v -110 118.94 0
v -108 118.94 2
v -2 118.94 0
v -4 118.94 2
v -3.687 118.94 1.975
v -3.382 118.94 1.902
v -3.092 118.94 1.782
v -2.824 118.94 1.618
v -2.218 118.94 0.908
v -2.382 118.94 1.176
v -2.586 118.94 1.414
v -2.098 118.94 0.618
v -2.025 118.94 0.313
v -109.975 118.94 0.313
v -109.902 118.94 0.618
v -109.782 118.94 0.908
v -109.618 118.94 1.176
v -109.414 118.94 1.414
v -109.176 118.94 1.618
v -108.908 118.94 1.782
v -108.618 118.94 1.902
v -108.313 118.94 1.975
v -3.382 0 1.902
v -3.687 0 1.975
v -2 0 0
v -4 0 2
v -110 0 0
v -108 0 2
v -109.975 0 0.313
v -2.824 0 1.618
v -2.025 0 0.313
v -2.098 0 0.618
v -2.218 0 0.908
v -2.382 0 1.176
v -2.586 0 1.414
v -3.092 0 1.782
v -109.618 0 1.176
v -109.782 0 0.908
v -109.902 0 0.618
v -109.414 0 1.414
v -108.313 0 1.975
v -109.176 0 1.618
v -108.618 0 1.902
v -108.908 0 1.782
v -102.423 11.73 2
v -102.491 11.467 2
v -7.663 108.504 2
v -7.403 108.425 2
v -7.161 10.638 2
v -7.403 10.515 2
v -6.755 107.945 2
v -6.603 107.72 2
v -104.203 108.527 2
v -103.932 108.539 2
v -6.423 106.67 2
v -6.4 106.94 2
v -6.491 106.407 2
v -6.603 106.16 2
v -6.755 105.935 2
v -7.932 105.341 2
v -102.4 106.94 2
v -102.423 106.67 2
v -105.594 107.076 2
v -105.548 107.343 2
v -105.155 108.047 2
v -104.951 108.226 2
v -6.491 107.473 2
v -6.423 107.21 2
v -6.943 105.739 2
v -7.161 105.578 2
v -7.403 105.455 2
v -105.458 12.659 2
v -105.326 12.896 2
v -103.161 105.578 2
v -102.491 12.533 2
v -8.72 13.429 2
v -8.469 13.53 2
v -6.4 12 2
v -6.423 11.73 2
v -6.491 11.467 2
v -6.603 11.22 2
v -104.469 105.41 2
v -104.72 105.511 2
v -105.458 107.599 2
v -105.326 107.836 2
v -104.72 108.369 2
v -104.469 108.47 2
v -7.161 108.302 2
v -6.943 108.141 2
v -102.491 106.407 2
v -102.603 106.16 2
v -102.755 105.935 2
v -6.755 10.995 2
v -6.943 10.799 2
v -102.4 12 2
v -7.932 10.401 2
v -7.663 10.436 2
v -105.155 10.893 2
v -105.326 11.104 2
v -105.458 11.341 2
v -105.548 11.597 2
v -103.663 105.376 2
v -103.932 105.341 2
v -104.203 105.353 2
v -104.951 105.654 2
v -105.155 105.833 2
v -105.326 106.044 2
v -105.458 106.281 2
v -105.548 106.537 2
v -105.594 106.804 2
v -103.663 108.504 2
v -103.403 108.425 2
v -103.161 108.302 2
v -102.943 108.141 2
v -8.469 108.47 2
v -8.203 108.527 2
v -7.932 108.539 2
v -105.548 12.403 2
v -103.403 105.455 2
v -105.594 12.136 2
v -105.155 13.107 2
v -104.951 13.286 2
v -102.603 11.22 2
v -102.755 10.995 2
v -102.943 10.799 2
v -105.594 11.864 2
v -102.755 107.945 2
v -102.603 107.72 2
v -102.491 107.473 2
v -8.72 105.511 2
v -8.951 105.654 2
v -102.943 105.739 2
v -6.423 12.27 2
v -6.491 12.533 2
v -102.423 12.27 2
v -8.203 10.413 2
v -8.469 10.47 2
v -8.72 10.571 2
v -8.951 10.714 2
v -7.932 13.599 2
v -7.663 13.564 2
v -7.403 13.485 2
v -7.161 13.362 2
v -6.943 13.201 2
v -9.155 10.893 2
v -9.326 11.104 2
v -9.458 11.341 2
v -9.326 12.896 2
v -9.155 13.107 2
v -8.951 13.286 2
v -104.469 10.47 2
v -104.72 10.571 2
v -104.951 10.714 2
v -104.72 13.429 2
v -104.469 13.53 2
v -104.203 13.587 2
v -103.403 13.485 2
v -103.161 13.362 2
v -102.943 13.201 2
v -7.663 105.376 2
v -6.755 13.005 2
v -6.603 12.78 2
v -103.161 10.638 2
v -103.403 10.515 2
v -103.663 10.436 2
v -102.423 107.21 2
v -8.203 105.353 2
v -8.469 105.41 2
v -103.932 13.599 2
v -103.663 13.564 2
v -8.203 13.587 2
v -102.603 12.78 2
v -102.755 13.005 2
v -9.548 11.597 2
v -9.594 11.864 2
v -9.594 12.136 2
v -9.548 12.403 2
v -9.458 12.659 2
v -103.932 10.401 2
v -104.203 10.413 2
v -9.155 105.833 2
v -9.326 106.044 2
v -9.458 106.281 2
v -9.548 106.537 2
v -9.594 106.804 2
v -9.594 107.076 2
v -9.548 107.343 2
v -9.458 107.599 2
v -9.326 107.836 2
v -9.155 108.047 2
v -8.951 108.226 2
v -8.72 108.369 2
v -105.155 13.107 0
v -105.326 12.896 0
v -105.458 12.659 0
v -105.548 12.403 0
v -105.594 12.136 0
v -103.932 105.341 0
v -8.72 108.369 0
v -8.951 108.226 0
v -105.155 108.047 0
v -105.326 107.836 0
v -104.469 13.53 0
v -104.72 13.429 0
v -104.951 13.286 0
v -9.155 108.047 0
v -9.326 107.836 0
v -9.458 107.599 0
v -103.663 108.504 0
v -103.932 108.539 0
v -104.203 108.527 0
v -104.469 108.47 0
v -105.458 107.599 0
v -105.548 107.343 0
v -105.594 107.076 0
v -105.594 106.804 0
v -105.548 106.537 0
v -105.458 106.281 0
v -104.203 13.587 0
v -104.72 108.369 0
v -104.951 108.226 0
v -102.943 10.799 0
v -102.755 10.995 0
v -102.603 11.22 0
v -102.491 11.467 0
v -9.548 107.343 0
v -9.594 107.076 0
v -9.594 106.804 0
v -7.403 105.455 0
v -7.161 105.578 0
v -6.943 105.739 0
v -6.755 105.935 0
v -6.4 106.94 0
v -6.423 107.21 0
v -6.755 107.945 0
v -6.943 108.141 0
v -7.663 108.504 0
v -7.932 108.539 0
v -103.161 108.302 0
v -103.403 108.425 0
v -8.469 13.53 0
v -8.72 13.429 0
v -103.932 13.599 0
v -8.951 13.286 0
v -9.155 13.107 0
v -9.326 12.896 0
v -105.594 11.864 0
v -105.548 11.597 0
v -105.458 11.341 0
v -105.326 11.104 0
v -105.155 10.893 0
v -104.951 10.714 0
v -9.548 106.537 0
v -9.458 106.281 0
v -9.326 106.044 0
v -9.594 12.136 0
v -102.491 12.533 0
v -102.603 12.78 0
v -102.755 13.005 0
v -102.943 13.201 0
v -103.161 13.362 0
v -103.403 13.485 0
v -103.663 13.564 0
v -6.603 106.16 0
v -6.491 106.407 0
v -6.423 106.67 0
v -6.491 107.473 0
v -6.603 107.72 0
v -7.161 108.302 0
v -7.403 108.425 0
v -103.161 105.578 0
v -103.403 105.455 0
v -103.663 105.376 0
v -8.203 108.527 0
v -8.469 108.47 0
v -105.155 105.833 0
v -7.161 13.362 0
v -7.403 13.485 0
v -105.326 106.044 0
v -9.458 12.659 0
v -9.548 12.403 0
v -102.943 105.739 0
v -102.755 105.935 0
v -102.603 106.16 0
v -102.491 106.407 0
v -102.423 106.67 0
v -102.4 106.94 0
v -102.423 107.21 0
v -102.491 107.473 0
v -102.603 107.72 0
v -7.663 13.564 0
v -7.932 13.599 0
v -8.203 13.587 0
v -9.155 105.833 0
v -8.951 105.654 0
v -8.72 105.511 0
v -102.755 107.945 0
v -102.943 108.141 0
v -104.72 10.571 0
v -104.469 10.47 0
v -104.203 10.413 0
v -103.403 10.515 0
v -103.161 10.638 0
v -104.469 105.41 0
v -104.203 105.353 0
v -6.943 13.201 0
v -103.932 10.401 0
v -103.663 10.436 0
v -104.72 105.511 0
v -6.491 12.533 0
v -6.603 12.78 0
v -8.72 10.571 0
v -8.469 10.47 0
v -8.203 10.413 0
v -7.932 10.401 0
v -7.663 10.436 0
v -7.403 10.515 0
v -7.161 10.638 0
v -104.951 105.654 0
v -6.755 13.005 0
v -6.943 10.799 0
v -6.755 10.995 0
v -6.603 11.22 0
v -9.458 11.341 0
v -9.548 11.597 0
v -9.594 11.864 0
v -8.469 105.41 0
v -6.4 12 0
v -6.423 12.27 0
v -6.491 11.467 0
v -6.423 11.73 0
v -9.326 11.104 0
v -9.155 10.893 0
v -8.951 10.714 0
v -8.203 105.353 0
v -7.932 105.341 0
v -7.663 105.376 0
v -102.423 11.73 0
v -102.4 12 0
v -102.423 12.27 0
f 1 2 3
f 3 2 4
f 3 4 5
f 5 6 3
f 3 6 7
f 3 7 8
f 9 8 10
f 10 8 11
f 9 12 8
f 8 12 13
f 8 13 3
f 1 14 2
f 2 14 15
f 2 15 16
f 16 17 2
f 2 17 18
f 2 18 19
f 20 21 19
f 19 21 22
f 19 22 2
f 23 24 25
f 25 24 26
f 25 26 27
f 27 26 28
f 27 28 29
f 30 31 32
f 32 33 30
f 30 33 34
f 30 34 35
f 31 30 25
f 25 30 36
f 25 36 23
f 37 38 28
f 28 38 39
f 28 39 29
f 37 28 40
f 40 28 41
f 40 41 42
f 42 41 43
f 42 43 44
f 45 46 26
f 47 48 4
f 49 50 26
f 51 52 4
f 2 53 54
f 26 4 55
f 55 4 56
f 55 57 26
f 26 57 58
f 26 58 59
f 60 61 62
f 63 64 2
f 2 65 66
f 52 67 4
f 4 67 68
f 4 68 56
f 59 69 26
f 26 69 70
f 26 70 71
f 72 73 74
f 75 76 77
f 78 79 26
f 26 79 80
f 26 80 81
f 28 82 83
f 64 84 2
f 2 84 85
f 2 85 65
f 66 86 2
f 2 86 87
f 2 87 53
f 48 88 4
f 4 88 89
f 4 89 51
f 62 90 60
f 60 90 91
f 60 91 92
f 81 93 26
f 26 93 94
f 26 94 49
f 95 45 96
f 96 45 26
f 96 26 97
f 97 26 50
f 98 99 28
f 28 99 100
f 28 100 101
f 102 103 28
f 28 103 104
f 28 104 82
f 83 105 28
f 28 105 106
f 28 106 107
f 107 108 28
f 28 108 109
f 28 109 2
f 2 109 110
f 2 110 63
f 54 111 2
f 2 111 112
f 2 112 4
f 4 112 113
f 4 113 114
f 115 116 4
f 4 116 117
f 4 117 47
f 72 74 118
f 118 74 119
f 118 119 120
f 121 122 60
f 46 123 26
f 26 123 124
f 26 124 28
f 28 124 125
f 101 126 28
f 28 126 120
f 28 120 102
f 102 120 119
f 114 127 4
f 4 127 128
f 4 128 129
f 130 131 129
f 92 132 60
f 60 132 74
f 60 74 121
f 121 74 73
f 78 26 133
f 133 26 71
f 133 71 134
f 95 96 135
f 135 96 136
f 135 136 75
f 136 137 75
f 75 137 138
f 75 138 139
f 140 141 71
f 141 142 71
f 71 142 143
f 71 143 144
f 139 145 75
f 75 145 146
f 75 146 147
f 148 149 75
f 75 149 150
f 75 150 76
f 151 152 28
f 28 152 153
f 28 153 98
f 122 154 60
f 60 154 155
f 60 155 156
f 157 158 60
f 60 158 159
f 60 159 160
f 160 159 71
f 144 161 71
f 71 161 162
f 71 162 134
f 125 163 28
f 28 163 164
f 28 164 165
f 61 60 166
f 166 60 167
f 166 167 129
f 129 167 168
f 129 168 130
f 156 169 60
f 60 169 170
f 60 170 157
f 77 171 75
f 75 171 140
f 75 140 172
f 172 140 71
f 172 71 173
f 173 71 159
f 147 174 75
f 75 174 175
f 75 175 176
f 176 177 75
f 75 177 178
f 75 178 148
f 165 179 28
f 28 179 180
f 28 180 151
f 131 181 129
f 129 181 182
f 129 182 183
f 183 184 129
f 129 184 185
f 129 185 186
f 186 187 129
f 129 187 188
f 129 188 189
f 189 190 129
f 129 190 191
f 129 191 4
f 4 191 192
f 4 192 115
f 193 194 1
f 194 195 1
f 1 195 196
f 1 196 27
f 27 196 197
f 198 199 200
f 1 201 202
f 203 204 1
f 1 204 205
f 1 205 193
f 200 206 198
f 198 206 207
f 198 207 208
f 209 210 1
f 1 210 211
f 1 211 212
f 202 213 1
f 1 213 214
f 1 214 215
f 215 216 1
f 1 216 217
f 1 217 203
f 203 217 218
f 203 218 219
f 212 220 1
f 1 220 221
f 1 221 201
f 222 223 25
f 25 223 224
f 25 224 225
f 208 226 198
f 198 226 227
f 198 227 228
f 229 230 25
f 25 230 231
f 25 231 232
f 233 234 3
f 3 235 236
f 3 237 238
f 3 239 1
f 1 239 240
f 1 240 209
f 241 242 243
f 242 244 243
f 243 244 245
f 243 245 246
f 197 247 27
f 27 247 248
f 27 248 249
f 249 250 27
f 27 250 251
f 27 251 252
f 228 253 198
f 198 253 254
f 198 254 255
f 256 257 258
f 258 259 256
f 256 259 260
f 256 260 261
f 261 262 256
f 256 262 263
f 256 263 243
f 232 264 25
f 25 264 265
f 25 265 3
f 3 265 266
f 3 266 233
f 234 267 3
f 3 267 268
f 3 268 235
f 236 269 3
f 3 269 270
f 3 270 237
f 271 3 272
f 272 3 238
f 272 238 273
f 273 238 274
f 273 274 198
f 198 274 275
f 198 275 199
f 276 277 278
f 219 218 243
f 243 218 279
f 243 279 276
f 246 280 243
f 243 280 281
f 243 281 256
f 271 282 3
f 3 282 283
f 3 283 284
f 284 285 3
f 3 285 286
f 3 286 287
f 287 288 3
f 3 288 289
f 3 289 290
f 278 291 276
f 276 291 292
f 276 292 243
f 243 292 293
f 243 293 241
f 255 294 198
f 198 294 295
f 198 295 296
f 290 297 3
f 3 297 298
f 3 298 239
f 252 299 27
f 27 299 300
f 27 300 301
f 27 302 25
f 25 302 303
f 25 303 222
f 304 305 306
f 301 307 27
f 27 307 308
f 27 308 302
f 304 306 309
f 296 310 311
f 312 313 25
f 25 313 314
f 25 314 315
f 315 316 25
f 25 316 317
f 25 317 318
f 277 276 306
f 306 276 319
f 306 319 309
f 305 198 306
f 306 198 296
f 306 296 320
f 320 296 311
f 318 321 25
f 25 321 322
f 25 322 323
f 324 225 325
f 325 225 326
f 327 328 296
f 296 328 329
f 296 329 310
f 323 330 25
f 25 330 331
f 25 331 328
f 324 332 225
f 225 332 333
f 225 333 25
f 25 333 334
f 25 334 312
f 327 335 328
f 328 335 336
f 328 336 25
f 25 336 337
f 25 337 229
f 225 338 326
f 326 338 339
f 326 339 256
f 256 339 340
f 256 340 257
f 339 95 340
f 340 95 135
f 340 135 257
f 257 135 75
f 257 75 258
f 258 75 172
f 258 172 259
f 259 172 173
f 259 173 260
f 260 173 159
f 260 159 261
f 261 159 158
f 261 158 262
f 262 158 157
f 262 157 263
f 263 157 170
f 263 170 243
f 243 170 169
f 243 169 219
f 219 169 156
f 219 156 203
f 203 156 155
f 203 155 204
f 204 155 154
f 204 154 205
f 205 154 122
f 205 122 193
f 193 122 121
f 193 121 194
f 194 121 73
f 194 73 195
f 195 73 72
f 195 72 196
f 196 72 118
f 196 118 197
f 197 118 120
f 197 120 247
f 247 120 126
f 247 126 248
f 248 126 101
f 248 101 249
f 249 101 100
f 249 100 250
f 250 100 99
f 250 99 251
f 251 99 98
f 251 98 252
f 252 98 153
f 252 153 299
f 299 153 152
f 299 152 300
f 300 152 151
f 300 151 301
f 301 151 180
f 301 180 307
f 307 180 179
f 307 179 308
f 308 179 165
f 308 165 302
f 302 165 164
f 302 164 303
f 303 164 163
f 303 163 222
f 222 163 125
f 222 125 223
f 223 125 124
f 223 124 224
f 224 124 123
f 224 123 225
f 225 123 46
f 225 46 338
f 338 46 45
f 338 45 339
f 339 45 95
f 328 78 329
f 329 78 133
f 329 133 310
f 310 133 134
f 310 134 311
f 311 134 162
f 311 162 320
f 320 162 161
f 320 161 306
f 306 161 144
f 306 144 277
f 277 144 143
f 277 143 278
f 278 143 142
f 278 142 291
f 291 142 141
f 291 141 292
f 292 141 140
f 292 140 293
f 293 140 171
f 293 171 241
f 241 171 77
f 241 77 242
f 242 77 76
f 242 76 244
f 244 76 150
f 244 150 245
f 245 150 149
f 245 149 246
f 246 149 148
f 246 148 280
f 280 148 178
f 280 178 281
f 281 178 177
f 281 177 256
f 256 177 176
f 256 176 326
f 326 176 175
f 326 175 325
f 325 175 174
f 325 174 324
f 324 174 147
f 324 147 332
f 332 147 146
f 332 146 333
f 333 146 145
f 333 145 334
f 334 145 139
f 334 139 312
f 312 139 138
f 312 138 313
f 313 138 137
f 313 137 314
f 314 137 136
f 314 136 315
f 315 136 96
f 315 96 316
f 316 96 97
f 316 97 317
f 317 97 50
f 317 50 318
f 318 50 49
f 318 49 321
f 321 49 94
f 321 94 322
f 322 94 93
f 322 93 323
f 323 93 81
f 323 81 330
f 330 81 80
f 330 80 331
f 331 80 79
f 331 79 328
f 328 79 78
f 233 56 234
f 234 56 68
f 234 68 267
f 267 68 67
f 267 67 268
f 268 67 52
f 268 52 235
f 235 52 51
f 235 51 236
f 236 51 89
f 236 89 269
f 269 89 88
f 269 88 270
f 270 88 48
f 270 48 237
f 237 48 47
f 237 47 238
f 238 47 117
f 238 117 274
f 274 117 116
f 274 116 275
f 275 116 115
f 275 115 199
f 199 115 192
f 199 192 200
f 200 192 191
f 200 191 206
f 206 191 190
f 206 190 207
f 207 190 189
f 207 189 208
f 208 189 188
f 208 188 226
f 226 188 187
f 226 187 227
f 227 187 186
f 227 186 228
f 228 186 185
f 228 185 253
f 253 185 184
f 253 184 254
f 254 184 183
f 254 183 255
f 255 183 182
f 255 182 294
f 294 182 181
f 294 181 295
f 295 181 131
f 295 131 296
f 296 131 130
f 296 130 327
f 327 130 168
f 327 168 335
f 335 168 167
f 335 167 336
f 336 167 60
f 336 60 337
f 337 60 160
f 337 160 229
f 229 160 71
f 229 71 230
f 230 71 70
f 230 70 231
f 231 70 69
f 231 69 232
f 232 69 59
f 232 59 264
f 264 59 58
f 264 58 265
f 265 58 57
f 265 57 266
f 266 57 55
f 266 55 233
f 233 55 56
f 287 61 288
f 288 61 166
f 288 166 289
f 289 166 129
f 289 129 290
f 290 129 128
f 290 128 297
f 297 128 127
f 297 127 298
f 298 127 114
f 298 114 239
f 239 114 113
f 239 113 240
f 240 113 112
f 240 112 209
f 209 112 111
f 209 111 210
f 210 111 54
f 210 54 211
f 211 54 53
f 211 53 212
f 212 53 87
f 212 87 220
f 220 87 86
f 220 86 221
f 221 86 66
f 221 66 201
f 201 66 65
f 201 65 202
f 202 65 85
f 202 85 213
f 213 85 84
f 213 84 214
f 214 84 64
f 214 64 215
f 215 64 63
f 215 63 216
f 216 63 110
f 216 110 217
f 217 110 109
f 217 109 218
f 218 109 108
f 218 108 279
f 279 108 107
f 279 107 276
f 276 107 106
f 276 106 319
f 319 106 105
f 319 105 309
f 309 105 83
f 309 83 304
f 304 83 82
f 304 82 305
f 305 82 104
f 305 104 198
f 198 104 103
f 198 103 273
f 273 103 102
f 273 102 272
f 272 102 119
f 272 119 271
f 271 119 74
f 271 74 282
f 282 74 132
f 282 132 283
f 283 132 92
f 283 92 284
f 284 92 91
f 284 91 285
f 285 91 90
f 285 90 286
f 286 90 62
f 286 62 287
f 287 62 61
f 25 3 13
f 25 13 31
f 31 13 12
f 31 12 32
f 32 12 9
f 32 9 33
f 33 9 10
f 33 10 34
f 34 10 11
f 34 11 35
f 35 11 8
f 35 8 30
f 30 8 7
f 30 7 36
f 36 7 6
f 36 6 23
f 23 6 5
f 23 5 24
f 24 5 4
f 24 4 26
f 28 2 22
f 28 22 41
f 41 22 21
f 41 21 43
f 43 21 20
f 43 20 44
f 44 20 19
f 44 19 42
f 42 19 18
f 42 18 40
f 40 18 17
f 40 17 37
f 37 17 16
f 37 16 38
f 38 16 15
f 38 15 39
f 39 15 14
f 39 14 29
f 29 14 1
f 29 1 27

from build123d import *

# Parameters (mm, degrees)
SZKIC1_W                    = 104
SZKIC1_H                    = 118.94
DODANIE_WYCI_GNI_CIE1_DEPTH = 2
SZKIC2_W                    = 2
SZKIC2_H                    = 118.94
DODANIE_WYCI_GNI_CIE2_DEPTH = 2
SZKIC3_R                    = 1.6
WYTNIJ_WYCI_GNI_CIE1_DEPTH  = 2
ZAOKR_GLENIE1_R             = 2


with BuildPart() as part:
    # Szkic1 → Dodanie-wyciągnięcie1 (new body)
    with BuildSketch(Plane.XY):
        with Locations((-56, 59.47)):
            Rectangle(SZKIC1_W, SZKIC1_H)
    extrude(amount=DODANIE_WYCI_GNI_CIE1_DEPTH)

    # Szkic2 → Dodanie-wyciągnięcie2 (add)
    with BuildSketch(Plane(origin=(0, 0, 0), x_dir=(-1, 0, 0), z_dir=(0, 0, -1))):
        with Locations((109, 59.47)):
            Rectangle(SZKIC2_W, SZKIC2_H)
        with Locations((3, 59.47)):
            Rectangle(SZKIC2_W, SZKIC2_H)
    extrude(amount=-DODANIE_WYCI_GNI_CIE2_DEPTH)

    # Szkic3 → Wytnij-wyciągnięcie1 (cut)
    with BuildSketch(Plane.XY.offset(2)):
        with Locations((-104, 12)):
            Circle(SZKIC3_R)
        with Locations((-8, 12)):
            Circle(SZKIC3_R)
        with Locations((-8, 106.94)):
            Circle(SZKIC3_R)
        with Locations((-104, 106.94)):
            Circle(SZKIC3_R)
    extrude(amount=-WYTNIJ_WYCI_GNI_CIE1_DEPTH, mode=Mode.SUBTRACT)

    # Zaokrąglenie1
    zaokr_glenie1_edges = [part.edges().sort_by_distance(p)[0] for p in [
        (-2, 59.47, 2),
        (-110, 59.47, 2),
    ]]
    fillet(zaokr_glenie1_edges, radius=ZAOKR_GLENIE1_R - 0.0001)  # a hair under: the kernel refuses the full size


solid = part.part
